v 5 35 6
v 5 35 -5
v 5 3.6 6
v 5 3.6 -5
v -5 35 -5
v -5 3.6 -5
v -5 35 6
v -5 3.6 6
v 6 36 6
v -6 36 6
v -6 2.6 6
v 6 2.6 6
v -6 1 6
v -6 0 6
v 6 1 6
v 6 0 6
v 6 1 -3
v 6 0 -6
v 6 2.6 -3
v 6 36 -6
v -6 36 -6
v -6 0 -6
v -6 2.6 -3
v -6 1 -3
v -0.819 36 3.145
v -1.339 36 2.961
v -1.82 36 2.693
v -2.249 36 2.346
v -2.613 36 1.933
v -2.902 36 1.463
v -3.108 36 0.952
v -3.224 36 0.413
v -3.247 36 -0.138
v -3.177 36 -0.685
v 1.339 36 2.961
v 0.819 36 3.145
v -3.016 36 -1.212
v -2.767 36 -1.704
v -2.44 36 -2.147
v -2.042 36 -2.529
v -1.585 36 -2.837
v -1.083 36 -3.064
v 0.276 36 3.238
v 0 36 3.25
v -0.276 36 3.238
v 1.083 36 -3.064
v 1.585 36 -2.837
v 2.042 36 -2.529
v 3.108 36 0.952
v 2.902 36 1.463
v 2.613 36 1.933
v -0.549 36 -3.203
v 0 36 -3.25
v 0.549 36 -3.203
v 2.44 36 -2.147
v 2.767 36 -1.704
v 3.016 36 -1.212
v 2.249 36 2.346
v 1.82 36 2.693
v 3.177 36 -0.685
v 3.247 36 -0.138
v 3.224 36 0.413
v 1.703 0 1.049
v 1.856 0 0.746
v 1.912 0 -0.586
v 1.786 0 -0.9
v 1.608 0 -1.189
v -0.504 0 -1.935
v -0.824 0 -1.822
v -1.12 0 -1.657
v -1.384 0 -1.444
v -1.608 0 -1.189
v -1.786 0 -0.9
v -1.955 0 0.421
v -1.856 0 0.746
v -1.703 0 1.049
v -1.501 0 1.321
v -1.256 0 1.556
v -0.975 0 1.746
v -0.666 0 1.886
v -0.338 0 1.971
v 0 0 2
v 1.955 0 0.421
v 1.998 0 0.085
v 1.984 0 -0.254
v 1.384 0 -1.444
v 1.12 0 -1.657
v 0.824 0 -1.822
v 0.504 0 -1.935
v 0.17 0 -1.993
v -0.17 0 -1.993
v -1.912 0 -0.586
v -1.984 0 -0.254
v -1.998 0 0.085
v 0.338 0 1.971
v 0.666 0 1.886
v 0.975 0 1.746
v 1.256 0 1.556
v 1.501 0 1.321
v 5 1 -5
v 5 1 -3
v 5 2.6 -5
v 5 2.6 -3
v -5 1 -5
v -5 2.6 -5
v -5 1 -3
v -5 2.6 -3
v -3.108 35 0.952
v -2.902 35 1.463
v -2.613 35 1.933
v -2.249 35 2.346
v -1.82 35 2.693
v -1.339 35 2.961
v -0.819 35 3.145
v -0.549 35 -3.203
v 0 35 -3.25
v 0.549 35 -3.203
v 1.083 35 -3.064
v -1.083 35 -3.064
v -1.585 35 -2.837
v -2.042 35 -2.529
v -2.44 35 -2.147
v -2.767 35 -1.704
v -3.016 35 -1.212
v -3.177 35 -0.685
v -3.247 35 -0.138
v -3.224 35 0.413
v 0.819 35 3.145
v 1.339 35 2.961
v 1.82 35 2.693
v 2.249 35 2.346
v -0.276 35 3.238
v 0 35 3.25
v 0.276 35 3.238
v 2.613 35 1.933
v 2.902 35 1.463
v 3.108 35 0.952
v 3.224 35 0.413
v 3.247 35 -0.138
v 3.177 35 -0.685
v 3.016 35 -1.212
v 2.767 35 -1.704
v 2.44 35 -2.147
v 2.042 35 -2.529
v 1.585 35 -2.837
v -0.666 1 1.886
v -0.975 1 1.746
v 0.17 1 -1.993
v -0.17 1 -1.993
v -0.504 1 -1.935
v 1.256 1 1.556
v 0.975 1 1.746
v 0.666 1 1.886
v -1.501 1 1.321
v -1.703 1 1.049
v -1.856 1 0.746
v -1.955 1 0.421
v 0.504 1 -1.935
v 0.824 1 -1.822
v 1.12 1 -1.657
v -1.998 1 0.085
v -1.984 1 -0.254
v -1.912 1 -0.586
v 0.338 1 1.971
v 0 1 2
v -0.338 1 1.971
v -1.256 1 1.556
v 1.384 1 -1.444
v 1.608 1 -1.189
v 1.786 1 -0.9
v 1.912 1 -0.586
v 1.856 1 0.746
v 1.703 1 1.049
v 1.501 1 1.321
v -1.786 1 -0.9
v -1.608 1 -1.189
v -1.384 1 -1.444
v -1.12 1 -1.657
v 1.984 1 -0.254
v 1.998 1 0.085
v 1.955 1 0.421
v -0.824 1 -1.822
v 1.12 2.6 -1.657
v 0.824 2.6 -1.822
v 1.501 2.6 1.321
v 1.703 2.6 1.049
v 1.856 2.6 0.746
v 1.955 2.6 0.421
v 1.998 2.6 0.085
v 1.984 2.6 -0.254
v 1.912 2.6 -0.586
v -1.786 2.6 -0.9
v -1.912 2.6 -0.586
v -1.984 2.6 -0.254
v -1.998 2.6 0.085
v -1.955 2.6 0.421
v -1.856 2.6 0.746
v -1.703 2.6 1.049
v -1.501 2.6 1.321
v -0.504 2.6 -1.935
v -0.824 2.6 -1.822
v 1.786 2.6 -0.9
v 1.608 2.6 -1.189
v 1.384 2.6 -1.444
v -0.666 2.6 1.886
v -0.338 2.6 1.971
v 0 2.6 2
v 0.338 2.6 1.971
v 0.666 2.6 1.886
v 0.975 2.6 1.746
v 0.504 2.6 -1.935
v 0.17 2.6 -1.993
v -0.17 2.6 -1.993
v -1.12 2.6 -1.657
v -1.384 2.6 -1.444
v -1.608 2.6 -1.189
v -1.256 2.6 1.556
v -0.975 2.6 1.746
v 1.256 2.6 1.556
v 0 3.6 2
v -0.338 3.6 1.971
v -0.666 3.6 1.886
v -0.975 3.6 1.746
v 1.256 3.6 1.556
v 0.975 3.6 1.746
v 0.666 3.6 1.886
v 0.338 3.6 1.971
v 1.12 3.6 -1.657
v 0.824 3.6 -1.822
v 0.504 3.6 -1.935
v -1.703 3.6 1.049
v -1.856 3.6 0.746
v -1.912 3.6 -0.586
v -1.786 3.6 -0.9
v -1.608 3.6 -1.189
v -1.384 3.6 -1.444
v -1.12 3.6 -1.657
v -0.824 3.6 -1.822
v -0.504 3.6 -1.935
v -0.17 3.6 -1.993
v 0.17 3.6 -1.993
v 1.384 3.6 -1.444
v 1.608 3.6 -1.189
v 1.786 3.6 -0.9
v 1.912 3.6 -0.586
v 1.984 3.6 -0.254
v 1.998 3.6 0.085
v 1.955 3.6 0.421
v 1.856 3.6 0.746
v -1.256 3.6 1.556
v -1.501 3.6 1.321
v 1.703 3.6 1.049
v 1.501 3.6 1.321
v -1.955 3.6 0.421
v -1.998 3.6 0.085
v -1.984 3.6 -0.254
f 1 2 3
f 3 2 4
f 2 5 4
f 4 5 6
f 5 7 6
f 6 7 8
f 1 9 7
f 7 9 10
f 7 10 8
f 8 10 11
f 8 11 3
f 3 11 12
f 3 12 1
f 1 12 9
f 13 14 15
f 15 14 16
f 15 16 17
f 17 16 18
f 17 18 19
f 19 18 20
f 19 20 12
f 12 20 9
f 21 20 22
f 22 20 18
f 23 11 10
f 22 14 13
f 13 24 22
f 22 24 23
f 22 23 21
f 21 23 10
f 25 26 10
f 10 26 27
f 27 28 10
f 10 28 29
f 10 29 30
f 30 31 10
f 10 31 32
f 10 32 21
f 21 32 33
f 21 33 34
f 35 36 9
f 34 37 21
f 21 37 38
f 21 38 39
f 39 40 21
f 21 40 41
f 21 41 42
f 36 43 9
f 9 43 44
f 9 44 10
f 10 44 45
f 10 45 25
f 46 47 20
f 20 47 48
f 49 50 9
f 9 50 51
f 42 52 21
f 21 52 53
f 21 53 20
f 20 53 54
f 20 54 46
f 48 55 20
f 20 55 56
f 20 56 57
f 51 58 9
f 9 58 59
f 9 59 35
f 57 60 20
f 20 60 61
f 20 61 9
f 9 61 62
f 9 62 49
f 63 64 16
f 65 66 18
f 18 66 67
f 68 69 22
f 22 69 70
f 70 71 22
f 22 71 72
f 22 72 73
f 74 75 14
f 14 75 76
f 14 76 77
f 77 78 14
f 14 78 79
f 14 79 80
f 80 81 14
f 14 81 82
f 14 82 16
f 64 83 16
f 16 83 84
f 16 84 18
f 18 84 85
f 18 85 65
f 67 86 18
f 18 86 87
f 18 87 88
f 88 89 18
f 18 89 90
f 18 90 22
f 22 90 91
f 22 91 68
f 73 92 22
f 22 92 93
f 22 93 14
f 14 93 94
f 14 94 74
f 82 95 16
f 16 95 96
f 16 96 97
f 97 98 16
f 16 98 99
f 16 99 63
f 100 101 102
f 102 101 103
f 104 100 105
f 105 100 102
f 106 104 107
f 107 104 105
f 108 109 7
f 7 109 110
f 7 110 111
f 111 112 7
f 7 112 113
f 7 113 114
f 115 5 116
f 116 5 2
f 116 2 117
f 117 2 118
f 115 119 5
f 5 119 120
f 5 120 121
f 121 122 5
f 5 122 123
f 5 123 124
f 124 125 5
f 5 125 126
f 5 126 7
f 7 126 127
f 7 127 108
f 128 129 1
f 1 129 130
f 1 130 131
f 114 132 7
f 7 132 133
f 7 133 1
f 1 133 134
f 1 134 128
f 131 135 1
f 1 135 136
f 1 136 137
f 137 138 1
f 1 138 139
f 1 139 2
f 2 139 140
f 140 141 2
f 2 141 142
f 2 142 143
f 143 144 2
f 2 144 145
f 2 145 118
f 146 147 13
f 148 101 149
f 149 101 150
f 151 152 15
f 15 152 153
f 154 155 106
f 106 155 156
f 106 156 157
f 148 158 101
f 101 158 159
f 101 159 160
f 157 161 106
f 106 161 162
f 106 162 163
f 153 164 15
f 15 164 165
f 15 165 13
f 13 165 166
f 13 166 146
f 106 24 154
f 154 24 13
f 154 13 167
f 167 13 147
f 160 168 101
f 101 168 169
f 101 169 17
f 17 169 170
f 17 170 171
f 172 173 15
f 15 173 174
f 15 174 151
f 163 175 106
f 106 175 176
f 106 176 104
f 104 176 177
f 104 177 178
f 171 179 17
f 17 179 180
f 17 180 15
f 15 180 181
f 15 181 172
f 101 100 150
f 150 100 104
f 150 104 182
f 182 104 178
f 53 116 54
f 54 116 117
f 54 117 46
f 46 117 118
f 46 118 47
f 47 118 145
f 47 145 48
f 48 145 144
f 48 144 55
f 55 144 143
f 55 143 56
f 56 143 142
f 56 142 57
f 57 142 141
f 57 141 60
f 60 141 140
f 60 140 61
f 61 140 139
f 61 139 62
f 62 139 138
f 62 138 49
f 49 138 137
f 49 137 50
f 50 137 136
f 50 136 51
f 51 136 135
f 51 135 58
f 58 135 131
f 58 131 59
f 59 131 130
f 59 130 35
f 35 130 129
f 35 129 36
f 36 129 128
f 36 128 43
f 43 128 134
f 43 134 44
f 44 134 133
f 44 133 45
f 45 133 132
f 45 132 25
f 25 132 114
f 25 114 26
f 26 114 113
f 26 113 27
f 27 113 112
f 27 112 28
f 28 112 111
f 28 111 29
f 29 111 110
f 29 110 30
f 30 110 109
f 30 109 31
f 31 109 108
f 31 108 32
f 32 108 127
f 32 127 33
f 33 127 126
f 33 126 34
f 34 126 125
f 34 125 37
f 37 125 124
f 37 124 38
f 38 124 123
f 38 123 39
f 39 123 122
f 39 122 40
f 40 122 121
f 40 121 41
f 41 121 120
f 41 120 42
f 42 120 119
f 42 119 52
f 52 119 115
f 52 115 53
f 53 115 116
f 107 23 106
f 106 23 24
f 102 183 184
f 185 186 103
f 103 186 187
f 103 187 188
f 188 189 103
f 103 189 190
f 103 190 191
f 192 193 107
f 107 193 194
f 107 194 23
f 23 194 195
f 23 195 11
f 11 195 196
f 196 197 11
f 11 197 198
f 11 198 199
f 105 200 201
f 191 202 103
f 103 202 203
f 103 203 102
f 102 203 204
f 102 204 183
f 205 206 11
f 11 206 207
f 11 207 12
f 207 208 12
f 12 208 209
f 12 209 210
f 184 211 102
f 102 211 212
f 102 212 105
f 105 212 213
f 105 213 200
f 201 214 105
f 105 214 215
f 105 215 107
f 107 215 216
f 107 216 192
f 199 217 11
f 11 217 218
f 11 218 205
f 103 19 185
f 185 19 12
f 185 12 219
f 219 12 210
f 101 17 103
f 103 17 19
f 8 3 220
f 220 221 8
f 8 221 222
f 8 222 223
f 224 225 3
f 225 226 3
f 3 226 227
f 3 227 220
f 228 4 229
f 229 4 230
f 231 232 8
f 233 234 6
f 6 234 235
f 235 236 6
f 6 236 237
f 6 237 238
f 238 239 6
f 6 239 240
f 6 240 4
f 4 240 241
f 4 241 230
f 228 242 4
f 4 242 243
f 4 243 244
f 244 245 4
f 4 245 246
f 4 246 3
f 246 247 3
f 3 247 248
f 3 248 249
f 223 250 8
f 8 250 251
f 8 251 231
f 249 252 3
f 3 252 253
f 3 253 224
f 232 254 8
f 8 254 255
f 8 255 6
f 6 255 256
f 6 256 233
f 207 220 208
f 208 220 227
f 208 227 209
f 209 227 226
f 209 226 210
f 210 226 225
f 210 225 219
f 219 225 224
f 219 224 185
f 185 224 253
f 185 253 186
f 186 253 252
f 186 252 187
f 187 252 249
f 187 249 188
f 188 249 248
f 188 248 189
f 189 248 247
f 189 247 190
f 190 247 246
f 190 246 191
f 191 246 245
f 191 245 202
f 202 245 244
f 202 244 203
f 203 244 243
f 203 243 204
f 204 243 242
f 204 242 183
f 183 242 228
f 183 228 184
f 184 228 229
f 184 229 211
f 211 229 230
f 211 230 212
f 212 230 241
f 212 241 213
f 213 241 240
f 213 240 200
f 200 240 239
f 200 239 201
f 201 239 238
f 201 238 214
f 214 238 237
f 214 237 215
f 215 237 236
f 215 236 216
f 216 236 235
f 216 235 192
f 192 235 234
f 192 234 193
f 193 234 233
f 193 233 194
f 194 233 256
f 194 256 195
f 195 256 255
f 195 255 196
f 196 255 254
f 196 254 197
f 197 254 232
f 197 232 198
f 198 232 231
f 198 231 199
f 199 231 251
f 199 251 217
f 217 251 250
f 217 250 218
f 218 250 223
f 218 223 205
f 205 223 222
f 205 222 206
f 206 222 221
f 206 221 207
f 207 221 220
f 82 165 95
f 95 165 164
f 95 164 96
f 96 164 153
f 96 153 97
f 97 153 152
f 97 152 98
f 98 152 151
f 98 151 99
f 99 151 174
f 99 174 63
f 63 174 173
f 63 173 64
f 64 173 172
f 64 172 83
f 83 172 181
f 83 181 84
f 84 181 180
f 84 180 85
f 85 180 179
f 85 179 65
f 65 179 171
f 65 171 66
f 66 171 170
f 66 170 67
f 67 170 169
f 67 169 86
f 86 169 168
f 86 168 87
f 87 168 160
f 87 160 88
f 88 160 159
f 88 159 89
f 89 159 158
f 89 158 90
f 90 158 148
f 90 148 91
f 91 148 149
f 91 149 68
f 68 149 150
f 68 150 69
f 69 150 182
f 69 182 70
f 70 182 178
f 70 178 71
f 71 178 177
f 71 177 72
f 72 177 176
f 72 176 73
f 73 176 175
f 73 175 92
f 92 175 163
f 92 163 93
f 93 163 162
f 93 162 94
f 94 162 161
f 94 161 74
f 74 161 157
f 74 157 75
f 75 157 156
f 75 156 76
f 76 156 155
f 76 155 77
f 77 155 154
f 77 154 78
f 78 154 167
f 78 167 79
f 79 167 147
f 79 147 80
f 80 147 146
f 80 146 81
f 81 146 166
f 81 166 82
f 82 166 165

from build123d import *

# Parameters (mm, degrees)
CROQUIS1_W                 = 12
CROQUIS1_H                 = 12
SALIENTE_EXTRUIR1_DEPTH    = 36
VACIADO1_T                 = -1
CORTAR_EXTRUIR1_DEPTH      = 37.986484018
CORTAR_EXTRUIR1_DEPTH_BACK = 3
CROQUIS2_R                 = 3.25
CROQUIS3_W                 = 13.652855543
CROQUIS3_H                 = 1.6
CORTAR_EXTRUIR2_DEPTH      = 9
CROQUIS4_W                 = 10
CROQUIS4_H                 = 1
SALIENTE_EXTRUIR2_DEPTH    = 11
CROQUIS5_R                 = 2
CORTAR_EXTRUIR3_DEPTH      = 37.986484018


with BuildPart() as part:
    # Croquis1 → Saliente-Extruir1 (new body)
    with BuildSketch(Plane(origin=(0, 0, 0), x_dir=(1, 0, 0), z_dir=(0, 1, 0))):
        Rectangle(CROQUIS1_W, CROQUIS1_H)
    extrude(amount=SALIENTE_EXTRUIR1_DEPTH)

    # Vaciado1
    vaciado1_openings = [part.faces().sort_by_distance(p)[0] for p in [
        (0, 18, 6),
    ]]
    offset(amount=VACIADO1_T, openings=vaciado1_openings, kind=Kind.INTERSECTION)

    # Croquis2 → Cortar-Extruir1 (cut, two sides: drawn at the far end of the back side and taken through both)
    with BuildSketch(Plane(origin=(0, 36, 0), x_dir=(1, 0, 0), z_dir=(0, 1, 0)).offset(-CORTAR_EXTRUIR1_DEPTH_BACK)):
        with Locations(Location((0, 0, 0), (0, 0, 90))):
            Circle(CROQUIS2_R)
    extrude(amount=CORTAR_EXTRUIR1_DEPTH + CORTAR_EXTRUIR1_DEPTH_BACK, mode=Mode.SUBTRACT)

    # Croquis3 → Cortar-Extruir2 (cut)
    with BuildSketch(Plane.XY.offset(6)):
        with Locations((0.0537514, 1.8)):
            Rectangle(CROQUIS3_W, CROQUIS3_H)
    extrude(amount=-CORTAR_EXTRUIR2_DEPTH, mode=Mode.SUBTRACT)

    # Croquis4 → Saliente-Extruir2 (add)
    with BuildSketch(Plane.XY.offset(6)):
        with Locations((0, 3.1)):
            Rectangle(CROQUIS4_W, CROQUIS4_H)
    extrude(amount=-SALIENTE_EXTRUIR2_DEPTH)

    # Croquis5 → Cortar-Extruir3 (cut, through all)
    with BuildSketch(Plane(origin=(0, 36, 0), x_dir=(1, 0, 0), z_dir=(0, 1, 0))):
        with Locations(Location((0, 0, 0), (0, 0, 270))):
            Circle(CROQUIS5_R)
    extrude(amount=-CORTAR_EXTRUIR3_DEPTH, mode=Mode.SUBTRACT)


solid = part.part
